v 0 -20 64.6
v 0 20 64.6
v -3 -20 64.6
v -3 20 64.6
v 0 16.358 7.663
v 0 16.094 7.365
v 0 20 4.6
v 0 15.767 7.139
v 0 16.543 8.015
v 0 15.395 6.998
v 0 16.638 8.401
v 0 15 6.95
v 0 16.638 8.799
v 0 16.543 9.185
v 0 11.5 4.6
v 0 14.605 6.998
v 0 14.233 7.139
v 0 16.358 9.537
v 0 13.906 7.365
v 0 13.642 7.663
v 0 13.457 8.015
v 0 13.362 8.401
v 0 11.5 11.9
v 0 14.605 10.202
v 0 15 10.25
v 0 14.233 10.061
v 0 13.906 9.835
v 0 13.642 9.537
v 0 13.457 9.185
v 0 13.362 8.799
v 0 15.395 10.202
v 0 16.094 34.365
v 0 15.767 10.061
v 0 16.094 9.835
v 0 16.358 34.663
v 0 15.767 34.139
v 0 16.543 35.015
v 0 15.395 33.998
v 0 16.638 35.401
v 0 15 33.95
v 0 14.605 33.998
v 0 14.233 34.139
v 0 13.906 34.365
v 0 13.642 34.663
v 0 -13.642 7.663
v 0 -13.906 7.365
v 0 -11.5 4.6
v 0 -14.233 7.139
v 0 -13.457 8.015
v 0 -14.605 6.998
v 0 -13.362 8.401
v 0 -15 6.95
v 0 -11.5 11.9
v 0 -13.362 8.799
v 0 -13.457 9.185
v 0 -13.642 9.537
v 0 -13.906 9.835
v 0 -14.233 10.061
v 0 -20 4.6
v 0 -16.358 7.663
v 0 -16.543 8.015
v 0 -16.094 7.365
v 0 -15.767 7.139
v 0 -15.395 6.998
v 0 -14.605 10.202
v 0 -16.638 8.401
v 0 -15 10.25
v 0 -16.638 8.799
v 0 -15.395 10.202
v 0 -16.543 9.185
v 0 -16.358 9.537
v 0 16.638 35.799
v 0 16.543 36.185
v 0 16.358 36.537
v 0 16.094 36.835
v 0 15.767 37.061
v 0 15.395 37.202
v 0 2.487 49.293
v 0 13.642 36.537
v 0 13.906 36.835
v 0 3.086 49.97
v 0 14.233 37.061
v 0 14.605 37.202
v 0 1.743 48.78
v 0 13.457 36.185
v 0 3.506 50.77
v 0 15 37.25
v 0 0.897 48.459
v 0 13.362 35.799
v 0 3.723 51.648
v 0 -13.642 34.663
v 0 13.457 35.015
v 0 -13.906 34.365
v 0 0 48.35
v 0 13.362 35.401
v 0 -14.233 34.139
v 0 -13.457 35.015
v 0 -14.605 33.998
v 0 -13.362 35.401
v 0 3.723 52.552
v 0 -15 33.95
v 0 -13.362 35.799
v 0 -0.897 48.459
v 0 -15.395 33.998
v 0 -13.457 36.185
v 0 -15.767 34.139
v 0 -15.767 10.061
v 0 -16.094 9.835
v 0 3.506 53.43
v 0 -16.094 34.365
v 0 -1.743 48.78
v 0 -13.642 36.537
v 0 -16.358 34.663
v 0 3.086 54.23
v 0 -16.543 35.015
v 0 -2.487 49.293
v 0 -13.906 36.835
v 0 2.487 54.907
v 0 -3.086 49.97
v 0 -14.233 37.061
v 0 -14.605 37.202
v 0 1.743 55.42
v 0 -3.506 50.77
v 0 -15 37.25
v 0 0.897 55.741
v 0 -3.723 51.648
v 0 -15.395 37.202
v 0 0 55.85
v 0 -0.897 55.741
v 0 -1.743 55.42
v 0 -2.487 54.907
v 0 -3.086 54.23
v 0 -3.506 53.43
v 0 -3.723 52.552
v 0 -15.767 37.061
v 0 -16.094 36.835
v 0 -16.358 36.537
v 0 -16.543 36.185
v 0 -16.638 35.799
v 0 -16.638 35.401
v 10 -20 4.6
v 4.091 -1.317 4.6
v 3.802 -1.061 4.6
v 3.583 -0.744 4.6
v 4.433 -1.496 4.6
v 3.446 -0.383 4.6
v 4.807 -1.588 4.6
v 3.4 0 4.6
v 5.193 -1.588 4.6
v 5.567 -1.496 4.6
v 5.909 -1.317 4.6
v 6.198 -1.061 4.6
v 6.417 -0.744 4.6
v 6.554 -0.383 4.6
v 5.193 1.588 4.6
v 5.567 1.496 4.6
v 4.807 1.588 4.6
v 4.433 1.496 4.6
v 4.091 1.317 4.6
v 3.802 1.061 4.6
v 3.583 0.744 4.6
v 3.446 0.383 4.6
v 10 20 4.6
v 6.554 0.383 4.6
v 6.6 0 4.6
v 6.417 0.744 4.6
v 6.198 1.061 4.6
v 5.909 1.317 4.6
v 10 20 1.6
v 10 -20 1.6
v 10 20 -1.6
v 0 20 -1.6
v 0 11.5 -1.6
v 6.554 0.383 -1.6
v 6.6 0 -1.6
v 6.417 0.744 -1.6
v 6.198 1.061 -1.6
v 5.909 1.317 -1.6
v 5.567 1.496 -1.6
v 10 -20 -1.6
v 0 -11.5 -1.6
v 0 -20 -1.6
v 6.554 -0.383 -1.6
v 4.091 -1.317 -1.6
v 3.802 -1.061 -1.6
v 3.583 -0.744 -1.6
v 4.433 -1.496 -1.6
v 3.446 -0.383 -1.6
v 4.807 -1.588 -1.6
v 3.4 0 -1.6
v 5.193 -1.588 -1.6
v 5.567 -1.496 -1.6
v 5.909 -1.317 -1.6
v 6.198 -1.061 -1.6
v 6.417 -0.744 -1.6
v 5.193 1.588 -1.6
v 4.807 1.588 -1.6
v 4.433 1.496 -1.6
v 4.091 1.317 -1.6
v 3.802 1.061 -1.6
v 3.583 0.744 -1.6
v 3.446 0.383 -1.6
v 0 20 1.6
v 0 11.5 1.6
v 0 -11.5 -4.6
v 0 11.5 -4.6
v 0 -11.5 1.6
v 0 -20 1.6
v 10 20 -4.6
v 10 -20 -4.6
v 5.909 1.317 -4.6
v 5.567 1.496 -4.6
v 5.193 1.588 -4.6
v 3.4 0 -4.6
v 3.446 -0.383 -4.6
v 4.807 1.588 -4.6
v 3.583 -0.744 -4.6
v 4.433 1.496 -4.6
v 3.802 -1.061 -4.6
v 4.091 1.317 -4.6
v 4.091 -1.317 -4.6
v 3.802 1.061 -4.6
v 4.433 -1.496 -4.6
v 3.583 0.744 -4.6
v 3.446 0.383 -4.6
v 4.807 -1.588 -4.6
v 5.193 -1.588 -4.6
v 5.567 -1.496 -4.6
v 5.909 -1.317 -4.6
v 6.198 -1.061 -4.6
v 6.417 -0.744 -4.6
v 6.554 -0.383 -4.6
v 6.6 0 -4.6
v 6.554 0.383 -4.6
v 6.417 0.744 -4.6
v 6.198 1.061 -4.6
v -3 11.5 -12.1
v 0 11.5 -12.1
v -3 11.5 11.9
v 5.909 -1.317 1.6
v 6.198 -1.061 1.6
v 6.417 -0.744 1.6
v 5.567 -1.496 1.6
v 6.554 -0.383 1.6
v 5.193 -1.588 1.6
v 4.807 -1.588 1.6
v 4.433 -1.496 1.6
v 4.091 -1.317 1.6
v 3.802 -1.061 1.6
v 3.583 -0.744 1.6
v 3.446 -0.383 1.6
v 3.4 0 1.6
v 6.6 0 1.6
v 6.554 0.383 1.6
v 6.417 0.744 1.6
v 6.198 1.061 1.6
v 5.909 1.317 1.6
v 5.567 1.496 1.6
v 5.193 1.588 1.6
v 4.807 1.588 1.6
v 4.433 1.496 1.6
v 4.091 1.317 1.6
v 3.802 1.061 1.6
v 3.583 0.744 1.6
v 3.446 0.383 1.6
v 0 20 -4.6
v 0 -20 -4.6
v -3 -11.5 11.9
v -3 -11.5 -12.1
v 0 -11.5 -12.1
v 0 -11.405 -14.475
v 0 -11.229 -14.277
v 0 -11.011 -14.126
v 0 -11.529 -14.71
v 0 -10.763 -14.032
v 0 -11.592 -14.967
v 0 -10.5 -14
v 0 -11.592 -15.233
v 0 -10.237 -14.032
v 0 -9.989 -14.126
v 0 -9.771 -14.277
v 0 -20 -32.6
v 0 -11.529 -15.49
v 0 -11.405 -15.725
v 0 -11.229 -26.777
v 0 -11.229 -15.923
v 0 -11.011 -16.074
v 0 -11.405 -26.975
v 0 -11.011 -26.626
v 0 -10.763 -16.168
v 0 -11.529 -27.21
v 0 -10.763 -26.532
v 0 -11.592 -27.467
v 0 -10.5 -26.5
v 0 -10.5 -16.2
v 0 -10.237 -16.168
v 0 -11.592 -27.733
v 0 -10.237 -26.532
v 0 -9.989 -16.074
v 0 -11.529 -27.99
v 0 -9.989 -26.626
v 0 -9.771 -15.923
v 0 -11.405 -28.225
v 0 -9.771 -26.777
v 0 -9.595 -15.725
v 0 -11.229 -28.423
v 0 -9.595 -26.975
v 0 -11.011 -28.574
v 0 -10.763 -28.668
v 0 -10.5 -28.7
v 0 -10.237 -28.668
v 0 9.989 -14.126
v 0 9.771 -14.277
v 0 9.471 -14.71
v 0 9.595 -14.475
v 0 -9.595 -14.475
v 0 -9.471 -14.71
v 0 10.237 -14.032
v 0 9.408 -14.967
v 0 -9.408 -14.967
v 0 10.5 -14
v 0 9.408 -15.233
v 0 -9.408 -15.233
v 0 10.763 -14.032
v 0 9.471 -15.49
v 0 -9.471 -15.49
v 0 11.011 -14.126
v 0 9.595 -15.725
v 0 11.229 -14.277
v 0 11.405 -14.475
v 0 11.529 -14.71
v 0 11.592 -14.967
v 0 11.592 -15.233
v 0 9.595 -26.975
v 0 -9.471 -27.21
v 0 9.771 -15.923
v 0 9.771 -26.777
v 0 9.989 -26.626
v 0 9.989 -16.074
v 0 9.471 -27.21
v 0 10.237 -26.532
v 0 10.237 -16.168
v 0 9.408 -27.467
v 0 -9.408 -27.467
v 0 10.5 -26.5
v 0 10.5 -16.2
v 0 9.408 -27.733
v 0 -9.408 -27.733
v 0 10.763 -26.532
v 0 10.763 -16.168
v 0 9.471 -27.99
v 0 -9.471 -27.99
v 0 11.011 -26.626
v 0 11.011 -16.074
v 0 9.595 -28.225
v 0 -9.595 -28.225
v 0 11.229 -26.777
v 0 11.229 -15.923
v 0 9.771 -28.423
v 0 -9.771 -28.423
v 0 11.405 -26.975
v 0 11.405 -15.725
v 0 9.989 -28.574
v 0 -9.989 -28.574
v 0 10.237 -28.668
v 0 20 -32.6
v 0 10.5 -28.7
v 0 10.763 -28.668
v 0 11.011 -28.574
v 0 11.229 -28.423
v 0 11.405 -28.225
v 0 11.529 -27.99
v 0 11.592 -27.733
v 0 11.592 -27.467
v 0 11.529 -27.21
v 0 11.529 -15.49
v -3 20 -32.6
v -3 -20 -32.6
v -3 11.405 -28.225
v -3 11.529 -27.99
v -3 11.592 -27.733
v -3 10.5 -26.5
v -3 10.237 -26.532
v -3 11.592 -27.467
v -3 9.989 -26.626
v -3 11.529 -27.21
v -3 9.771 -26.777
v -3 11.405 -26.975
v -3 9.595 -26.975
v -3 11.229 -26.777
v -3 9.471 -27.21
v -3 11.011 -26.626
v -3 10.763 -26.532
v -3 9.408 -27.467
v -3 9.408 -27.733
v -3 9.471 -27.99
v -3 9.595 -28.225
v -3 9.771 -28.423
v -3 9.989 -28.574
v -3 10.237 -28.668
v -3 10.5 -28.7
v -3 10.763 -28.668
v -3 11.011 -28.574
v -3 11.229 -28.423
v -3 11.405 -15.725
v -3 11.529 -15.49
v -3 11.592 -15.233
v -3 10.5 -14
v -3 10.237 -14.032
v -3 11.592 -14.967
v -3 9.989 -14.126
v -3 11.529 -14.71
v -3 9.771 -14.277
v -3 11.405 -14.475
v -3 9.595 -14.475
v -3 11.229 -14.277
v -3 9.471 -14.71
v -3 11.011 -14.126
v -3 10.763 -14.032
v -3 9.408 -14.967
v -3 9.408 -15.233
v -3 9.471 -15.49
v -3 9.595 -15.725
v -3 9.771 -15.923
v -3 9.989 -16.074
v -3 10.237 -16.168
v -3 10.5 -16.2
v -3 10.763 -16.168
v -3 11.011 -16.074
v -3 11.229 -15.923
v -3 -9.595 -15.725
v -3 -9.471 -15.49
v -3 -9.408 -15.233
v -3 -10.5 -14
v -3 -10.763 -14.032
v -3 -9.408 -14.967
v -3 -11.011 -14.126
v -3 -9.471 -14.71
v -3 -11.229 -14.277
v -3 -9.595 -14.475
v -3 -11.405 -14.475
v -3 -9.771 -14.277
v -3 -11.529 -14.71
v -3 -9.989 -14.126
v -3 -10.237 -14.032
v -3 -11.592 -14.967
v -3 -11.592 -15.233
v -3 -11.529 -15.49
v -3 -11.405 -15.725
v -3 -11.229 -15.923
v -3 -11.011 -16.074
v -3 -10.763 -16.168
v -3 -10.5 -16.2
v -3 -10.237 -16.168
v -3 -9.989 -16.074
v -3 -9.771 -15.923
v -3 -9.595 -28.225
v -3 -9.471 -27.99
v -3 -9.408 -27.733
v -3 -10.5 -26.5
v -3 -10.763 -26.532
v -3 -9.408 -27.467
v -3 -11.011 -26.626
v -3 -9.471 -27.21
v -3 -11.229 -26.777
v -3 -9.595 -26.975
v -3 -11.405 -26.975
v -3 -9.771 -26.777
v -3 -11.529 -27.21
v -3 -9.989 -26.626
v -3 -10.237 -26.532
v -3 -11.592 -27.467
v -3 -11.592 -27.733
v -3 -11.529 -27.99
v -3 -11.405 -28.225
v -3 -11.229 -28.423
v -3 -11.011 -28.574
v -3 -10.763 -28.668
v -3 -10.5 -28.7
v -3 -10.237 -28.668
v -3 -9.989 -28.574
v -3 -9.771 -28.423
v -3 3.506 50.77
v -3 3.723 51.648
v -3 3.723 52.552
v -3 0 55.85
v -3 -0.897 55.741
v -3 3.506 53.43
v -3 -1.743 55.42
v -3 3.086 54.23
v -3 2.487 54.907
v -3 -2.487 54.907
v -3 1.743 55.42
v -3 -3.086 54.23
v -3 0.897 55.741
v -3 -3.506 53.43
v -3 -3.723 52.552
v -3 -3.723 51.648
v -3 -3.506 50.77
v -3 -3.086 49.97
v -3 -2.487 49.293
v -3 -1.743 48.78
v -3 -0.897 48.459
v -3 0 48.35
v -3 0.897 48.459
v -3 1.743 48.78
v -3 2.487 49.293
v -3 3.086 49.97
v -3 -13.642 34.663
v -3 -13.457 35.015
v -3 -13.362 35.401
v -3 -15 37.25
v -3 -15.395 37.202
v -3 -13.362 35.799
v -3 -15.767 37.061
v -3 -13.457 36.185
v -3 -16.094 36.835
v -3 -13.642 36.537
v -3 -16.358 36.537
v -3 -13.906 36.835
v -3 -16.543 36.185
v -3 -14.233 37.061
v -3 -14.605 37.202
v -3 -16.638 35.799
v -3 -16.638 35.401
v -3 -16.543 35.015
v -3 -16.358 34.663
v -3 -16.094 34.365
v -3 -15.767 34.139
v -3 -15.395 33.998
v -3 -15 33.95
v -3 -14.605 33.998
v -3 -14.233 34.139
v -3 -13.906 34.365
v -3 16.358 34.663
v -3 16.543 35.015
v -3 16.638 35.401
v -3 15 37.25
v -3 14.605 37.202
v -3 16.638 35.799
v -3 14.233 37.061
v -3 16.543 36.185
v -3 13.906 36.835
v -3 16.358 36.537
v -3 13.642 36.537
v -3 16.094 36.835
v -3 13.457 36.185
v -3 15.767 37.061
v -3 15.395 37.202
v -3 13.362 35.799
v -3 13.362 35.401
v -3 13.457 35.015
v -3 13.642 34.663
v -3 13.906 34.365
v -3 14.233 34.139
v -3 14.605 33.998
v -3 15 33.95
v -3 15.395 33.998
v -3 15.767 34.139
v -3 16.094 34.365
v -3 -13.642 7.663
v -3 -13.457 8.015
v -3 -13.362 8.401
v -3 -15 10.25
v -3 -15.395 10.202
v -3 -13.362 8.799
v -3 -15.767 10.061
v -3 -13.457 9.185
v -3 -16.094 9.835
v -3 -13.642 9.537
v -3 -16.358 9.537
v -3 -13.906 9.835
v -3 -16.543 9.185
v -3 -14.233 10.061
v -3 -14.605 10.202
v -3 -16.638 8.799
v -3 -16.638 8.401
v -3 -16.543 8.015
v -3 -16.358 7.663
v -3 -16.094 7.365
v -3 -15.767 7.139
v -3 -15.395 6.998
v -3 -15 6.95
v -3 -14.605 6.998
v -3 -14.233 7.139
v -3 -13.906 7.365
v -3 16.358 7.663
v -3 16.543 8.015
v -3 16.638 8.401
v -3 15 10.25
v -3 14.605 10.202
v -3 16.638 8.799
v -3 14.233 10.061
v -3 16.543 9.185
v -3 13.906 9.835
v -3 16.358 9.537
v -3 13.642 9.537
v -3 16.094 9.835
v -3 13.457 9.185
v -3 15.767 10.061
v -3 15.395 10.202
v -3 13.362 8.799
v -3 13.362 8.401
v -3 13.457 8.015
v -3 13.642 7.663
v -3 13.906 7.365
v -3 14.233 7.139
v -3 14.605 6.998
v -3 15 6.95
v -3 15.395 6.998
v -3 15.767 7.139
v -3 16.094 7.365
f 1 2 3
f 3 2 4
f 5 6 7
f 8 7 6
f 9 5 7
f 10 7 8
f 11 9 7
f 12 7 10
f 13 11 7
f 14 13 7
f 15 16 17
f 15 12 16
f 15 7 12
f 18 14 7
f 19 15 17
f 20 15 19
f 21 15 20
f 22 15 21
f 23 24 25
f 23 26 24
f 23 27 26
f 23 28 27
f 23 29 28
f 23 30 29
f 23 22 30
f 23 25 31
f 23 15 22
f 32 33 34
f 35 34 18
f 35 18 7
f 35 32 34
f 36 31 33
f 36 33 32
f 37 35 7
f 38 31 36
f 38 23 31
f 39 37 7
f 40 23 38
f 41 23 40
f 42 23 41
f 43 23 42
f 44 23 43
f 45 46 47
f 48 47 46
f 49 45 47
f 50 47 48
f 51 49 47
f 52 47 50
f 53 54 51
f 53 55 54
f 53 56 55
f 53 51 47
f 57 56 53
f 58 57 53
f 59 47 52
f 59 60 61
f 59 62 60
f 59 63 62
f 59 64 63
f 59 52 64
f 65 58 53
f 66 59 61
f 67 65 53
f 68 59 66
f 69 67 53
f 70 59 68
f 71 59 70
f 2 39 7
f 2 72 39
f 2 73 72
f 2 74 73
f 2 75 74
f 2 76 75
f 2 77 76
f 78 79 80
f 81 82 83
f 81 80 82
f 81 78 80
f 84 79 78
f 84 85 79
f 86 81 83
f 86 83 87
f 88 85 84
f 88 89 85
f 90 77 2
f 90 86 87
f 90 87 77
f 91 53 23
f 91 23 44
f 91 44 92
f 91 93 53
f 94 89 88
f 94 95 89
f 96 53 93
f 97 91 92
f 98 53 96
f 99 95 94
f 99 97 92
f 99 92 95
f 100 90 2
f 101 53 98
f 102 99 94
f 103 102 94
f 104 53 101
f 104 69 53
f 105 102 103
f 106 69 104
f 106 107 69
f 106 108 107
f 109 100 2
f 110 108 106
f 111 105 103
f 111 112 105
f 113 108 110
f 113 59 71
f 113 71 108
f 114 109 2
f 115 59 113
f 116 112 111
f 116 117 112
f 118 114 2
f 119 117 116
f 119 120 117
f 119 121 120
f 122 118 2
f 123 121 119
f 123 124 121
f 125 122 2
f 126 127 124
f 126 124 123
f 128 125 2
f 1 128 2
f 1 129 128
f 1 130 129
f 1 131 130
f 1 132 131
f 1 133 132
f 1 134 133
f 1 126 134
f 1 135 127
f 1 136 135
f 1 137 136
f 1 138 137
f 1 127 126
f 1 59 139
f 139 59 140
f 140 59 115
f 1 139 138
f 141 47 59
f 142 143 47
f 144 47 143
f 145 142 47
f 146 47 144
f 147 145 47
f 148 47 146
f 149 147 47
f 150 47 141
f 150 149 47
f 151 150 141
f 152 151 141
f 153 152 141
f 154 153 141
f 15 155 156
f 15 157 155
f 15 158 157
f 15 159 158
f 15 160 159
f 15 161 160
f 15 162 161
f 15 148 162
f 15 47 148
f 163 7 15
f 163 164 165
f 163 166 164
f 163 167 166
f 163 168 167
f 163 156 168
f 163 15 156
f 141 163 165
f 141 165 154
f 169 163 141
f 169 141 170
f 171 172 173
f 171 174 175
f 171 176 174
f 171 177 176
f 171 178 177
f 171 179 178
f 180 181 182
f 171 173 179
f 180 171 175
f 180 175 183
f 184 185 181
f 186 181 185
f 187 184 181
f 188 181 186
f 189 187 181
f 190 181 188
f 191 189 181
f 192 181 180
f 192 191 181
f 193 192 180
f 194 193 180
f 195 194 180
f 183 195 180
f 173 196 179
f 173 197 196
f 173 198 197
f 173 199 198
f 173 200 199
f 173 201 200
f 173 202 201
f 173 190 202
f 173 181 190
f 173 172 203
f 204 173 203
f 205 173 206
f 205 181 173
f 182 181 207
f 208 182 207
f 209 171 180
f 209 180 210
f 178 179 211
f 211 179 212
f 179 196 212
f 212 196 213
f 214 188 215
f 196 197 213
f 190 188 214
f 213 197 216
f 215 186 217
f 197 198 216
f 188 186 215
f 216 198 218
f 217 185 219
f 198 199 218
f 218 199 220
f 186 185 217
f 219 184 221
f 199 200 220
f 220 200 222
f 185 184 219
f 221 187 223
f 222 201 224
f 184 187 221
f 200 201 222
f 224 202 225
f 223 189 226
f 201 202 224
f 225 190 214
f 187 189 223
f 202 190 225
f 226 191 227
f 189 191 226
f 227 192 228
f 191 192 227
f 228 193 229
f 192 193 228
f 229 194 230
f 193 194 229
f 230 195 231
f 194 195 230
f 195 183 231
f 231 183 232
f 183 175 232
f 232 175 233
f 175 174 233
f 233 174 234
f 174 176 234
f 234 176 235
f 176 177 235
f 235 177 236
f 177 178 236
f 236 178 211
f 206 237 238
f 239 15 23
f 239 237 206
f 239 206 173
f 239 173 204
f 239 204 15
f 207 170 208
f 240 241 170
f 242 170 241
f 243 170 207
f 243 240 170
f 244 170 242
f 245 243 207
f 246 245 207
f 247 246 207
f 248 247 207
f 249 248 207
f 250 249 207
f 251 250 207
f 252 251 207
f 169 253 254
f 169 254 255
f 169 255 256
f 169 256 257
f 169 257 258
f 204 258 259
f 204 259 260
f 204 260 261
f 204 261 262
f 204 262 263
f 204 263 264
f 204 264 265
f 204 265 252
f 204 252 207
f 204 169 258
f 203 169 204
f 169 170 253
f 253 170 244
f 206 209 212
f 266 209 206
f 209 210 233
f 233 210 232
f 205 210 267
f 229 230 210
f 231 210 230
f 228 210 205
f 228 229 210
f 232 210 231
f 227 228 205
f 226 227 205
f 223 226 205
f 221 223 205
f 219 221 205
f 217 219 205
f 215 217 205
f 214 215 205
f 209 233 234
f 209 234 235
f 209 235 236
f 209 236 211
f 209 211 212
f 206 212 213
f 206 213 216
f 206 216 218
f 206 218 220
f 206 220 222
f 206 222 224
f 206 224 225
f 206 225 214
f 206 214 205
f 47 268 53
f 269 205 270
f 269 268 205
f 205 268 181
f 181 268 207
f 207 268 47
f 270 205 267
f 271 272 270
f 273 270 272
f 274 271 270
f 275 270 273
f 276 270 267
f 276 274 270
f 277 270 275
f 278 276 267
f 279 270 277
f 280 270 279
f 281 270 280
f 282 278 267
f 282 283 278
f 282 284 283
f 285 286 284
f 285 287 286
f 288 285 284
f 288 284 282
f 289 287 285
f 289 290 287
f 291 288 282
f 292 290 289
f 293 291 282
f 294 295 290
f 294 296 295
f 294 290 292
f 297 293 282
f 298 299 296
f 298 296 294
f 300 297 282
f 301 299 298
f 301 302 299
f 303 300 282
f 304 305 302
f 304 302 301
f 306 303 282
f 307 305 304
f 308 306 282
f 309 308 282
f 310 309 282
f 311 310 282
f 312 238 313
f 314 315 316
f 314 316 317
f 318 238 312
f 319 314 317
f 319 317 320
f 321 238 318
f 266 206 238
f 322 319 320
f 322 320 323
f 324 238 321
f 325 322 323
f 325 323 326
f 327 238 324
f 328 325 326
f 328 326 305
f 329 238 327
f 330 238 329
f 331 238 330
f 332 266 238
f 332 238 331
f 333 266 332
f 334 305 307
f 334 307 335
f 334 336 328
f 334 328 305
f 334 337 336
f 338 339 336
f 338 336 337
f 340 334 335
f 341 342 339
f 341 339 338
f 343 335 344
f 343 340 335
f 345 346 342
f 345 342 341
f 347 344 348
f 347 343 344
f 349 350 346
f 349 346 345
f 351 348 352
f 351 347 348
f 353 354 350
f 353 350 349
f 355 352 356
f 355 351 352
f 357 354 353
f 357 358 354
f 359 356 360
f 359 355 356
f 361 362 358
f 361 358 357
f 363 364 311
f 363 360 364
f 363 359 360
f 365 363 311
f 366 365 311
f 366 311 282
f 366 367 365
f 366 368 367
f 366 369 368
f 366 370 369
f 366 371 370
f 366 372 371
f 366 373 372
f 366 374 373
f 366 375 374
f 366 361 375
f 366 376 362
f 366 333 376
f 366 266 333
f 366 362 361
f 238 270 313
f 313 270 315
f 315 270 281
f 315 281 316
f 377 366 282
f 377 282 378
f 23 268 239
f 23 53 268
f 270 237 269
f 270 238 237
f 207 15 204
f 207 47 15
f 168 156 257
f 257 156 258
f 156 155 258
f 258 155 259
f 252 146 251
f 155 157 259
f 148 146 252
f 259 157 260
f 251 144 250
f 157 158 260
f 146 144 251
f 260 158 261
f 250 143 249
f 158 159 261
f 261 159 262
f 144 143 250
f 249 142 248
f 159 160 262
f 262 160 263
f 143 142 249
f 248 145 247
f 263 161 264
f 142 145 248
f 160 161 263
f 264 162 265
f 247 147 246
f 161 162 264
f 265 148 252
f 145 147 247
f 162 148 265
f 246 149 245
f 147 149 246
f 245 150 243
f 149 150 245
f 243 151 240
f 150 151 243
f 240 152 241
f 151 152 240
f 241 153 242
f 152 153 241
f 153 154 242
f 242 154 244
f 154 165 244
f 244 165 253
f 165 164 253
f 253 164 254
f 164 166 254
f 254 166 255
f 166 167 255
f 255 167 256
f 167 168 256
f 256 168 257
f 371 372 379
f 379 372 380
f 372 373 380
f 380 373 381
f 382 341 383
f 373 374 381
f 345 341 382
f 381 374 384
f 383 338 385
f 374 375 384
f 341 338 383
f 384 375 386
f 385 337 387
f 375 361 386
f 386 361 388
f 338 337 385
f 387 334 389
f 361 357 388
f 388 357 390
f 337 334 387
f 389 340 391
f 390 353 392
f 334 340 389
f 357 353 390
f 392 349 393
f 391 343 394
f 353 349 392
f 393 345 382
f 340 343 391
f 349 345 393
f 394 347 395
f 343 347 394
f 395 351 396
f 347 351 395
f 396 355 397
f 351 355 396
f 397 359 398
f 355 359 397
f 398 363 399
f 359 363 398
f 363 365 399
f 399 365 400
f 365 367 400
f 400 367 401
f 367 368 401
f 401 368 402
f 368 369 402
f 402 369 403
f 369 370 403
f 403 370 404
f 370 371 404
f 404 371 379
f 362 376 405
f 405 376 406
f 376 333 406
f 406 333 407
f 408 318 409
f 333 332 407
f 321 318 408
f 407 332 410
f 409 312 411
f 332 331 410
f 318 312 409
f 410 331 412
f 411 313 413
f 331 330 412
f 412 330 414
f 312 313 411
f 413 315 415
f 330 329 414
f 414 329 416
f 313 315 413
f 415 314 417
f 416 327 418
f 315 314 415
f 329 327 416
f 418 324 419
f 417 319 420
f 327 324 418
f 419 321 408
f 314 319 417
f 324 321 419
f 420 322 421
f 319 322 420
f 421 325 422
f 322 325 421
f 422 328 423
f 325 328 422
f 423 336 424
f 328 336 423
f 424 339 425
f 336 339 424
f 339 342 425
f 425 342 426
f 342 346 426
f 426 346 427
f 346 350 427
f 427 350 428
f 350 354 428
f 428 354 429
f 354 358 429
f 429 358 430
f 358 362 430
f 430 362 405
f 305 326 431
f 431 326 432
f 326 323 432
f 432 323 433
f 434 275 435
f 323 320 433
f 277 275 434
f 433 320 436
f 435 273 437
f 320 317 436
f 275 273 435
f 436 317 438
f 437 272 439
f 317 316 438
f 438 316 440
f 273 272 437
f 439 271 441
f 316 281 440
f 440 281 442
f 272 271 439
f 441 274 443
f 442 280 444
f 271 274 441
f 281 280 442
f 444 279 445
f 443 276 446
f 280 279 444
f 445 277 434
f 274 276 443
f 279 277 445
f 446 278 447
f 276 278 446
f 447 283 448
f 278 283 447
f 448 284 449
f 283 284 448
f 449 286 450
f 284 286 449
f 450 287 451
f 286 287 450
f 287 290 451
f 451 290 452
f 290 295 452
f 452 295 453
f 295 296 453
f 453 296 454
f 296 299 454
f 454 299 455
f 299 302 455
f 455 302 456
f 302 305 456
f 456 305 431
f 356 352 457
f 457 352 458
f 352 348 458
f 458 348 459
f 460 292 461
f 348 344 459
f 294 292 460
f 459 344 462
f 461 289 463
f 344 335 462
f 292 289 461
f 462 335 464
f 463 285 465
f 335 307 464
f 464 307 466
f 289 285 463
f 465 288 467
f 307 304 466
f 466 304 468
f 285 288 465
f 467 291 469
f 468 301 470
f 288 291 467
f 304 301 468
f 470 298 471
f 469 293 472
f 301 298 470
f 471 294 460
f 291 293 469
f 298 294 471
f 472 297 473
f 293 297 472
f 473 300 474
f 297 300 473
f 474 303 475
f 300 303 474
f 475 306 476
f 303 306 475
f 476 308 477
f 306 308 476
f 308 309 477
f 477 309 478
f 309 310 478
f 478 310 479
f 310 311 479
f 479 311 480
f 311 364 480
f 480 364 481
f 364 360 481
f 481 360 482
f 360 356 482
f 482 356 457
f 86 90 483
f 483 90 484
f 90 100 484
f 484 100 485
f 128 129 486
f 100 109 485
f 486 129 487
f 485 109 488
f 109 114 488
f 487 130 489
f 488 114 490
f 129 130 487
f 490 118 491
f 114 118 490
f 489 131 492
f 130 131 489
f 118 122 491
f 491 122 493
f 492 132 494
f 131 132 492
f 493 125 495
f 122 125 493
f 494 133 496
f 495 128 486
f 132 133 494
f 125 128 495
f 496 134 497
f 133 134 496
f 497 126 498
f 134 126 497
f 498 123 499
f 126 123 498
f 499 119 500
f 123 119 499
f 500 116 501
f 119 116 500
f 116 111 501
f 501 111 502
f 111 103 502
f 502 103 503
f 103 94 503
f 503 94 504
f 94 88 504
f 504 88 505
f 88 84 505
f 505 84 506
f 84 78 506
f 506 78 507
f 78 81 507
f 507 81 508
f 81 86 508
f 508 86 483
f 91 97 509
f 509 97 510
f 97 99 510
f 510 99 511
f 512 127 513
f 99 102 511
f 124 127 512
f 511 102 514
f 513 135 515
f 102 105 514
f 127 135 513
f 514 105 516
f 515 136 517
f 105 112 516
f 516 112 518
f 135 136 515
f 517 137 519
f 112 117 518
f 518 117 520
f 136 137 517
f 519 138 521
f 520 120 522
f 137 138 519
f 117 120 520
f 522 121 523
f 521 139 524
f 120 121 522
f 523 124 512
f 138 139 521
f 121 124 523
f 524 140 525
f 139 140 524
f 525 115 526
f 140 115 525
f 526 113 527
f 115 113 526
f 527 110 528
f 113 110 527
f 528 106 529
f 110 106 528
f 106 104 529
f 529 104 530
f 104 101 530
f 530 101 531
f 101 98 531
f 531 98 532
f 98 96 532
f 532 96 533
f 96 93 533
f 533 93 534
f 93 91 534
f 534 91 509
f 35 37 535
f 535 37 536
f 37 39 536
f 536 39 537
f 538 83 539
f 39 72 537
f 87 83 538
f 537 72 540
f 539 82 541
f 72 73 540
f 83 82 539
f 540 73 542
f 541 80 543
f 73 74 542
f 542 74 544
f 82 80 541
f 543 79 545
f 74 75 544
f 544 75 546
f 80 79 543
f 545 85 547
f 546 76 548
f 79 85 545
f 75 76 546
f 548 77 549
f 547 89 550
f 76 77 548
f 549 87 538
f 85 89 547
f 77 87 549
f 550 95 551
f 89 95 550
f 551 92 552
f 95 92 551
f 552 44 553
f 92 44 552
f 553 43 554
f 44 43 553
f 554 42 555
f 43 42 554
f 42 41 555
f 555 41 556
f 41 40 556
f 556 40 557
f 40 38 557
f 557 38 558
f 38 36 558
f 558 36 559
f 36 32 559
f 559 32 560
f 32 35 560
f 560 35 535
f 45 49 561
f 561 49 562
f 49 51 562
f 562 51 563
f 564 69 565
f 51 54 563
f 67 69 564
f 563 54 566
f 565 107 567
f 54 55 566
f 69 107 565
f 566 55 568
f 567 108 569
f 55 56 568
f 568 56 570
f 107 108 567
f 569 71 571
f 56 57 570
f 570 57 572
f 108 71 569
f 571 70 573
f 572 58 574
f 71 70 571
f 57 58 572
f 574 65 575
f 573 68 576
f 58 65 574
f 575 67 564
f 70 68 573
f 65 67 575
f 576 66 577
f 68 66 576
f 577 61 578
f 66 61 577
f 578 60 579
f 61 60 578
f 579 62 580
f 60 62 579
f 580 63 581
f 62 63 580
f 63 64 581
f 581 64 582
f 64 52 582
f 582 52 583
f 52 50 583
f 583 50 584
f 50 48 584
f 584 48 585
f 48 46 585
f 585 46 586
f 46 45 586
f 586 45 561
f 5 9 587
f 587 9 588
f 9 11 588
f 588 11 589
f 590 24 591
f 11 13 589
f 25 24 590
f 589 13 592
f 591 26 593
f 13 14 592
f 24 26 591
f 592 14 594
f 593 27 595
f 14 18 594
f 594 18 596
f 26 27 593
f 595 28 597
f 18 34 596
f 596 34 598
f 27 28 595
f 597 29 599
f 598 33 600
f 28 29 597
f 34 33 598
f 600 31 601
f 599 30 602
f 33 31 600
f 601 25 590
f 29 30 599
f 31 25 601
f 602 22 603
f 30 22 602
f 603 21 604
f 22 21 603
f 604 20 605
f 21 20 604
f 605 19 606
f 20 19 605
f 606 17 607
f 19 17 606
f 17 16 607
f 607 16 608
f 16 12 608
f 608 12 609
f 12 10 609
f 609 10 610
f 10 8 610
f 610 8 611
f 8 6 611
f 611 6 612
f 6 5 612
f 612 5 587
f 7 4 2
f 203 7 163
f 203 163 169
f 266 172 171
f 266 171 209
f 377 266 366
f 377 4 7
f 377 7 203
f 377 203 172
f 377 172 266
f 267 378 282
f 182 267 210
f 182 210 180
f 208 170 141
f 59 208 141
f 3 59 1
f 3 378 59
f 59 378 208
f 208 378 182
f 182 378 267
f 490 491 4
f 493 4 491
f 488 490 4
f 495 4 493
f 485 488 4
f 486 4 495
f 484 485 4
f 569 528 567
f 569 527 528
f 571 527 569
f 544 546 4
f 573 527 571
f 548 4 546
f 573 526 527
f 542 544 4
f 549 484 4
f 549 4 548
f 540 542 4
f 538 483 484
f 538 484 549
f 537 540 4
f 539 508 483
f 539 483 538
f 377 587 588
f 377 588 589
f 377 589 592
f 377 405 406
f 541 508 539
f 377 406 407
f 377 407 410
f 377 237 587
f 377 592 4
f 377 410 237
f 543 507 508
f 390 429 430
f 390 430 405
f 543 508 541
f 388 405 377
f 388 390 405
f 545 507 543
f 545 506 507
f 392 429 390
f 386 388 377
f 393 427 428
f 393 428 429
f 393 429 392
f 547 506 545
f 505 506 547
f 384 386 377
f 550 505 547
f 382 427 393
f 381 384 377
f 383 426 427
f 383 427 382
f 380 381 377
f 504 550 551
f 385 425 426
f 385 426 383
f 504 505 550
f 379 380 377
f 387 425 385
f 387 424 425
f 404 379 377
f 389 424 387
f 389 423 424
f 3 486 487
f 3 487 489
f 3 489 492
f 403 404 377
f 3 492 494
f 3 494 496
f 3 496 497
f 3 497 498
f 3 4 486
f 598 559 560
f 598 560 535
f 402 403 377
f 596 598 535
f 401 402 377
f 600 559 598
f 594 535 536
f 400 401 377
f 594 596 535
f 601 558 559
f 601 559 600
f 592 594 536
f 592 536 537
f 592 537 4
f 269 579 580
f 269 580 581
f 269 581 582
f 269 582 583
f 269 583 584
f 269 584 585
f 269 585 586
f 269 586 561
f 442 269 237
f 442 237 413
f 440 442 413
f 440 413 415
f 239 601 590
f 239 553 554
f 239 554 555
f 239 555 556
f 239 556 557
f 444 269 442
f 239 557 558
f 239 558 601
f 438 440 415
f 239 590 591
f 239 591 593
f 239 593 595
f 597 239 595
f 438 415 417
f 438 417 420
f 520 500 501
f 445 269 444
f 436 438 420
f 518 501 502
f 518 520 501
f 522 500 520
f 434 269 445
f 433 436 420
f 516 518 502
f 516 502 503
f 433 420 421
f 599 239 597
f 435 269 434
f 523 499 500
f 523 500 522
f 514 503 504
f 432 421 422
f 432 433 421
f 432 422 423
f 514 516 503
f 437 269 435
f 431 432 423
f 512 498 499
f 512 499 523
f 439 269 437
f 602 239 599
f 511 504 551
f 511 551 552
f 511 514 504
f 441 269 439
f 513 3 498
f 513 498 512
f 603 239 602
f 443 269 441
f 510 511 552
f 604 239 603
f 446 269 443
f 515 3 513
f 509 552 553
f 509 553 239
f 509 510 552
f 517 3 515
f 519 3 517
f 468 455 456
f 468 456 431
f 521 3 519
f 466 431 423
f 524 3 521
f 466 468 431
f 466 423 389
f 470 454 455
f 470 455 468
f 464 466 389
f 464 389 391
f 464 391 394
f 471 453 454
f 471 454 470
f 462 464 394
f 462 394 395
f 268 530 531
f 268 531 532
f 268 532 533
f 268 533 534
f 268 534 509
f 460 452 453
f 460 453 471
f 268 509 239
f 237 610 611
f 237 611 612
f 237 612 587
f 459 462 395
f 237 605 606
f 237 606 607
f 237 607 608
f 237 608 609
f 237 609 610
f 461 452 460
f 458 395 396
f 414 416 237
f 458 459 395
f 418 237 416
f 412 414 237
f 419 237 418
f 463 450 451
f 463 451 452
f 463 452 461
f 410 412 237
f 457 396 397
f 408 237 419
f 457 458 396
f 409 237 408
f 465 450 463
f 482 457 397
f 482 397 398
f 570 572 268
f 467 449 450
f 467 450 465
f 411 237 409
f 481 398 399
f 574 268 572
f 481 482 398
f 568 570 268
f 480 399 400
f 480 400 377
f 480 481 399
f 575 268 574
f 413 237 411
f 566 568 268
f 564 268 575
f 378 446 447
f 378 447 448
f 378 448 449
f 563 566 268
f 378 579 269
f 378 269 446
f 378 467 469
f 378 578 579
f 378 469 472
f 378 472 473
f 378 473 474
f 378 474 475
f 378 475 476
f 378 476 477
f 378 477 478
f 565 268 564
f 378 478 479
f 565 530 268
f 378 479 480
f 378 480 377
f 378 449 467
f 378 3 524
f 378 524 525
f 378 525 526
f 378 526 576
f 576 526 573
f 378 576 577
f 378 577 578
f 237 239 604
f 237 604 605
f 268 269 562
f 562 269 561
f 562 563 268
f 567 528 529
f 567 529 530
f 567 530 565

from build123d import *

# Parameters (mm, degrees)
PAD_DEPTH       = 20
SKETCH001_R     = 1.6
POCKET_DEPTH    = 37.201
SKETCH002_R     = 1.1
SKETCH002_W     = 20
SKETCH002_H     = 23
POCKET001_DEPTH = 3.001
SKETCH003_R     = 1.65
SKETCH003_W     = 4
SKETCH003_H     = 23
POCKET002_DEPTH = 3.001
SKETCH004_W     = 25
SKETCH004_H     = 40
SKETCH004_R     = 3.75
PAD001_DEPTH    = 3


with BuildPart() as part:
    # Sketch → Pad (new body, symmetric)
    with BuildSketch(Plane.XZ):
        Polygon((-3, 39.6), (0, 39.6), (0, 4.6), (10, 4.6), (10, 1.6), (0, 1.6), (0, 0), (0, -1.6), (10, -1.6), (10, -4.6), (0, -4.6), (0, -32.6), (-3, -32.6), align=None)
    extrude(amount=PAD_DEPTH, both=True)

    # Sketch001 (on Face9 of Pad) → Pocket (cut, through all)
    with BuildSketch(Plane(origin=(0, 0, 4.6), x_dir=(-1, 0, 0), z_dir=(0, 0, 1))):
        with Locations((-5, 0)):
            Circle(SKETCH001_R)
    extrude(amount=-POCKET_DEPTH, mode=Mode.SUBTRACT)

    # Sketch002 (on Face13 of Pocket) → Pocket001 (cut, through all)
    with BuildSketch(Plane(origin=(0, 0, 0), x_dir=(0, 0, 1), z_dir=(1, 0, 0))):
        with Locations((-27.6, 10.5)):
            Circle(SKETCH002_R)
        with Locations((-15.1, 10.5)):
            Circle(SKETCH002_R)
        with Locations((-27.6, -10.5)):
            Circle(SKETCH002_R)
        with Locations((-15.1, -10.5)):
            Circle(SKETCH002_R)
        with Locations((-2.1, 0)):
            Rectangle(SKETCH002_W, SKETCH002_H)
    extrude(amount=-POCKET001_DEPTH, mode=Mode.SUBTRACT)

    # Sketch003 (on Face14 of Pocket001) → Pocket002 (cut, through all)
    with BuildSketch(Plane(origin=(0, 0, 0), x_dir=(0, 0, 1), z_dir=(1, 0, 0))):
        with Locations((8.6, 15)):
            Circle(SKETCH003_R)
        with Locations((35.6, 15)):
            Circle(SKETCH003_R)
        with Locations((35.6, -15)):
            Circle(SKETCH003_R)
        with Locations((8.6, -15)):
            Circle(SKETCH003_R)
        with Locations((9.9, 0)):
            Rectangle(SKETCH003_W, SKETCH003_H)
    extrude(amount=-POCKET002_DEPTH, mode=Mode.SUBTRACT)

    # Sketch004 (on Face12 of Pocket002) → Pad001 (join)
    with BuildSketch(Plane(origin=(0, 0, 0), x_dir=(0, 0, 1), z_dir=(1, 0, 0))):
        with Locations((52.1, 0)):
            Rectangle(SKETCH004_W, SKETCH004_H)
        with Locations((52.1, 0)):
            Circle(SKETCH004_R, mode=Mode.SUBTRACT)
    extrude(amount=-PAD001_DEPTH)


solid = part.part
